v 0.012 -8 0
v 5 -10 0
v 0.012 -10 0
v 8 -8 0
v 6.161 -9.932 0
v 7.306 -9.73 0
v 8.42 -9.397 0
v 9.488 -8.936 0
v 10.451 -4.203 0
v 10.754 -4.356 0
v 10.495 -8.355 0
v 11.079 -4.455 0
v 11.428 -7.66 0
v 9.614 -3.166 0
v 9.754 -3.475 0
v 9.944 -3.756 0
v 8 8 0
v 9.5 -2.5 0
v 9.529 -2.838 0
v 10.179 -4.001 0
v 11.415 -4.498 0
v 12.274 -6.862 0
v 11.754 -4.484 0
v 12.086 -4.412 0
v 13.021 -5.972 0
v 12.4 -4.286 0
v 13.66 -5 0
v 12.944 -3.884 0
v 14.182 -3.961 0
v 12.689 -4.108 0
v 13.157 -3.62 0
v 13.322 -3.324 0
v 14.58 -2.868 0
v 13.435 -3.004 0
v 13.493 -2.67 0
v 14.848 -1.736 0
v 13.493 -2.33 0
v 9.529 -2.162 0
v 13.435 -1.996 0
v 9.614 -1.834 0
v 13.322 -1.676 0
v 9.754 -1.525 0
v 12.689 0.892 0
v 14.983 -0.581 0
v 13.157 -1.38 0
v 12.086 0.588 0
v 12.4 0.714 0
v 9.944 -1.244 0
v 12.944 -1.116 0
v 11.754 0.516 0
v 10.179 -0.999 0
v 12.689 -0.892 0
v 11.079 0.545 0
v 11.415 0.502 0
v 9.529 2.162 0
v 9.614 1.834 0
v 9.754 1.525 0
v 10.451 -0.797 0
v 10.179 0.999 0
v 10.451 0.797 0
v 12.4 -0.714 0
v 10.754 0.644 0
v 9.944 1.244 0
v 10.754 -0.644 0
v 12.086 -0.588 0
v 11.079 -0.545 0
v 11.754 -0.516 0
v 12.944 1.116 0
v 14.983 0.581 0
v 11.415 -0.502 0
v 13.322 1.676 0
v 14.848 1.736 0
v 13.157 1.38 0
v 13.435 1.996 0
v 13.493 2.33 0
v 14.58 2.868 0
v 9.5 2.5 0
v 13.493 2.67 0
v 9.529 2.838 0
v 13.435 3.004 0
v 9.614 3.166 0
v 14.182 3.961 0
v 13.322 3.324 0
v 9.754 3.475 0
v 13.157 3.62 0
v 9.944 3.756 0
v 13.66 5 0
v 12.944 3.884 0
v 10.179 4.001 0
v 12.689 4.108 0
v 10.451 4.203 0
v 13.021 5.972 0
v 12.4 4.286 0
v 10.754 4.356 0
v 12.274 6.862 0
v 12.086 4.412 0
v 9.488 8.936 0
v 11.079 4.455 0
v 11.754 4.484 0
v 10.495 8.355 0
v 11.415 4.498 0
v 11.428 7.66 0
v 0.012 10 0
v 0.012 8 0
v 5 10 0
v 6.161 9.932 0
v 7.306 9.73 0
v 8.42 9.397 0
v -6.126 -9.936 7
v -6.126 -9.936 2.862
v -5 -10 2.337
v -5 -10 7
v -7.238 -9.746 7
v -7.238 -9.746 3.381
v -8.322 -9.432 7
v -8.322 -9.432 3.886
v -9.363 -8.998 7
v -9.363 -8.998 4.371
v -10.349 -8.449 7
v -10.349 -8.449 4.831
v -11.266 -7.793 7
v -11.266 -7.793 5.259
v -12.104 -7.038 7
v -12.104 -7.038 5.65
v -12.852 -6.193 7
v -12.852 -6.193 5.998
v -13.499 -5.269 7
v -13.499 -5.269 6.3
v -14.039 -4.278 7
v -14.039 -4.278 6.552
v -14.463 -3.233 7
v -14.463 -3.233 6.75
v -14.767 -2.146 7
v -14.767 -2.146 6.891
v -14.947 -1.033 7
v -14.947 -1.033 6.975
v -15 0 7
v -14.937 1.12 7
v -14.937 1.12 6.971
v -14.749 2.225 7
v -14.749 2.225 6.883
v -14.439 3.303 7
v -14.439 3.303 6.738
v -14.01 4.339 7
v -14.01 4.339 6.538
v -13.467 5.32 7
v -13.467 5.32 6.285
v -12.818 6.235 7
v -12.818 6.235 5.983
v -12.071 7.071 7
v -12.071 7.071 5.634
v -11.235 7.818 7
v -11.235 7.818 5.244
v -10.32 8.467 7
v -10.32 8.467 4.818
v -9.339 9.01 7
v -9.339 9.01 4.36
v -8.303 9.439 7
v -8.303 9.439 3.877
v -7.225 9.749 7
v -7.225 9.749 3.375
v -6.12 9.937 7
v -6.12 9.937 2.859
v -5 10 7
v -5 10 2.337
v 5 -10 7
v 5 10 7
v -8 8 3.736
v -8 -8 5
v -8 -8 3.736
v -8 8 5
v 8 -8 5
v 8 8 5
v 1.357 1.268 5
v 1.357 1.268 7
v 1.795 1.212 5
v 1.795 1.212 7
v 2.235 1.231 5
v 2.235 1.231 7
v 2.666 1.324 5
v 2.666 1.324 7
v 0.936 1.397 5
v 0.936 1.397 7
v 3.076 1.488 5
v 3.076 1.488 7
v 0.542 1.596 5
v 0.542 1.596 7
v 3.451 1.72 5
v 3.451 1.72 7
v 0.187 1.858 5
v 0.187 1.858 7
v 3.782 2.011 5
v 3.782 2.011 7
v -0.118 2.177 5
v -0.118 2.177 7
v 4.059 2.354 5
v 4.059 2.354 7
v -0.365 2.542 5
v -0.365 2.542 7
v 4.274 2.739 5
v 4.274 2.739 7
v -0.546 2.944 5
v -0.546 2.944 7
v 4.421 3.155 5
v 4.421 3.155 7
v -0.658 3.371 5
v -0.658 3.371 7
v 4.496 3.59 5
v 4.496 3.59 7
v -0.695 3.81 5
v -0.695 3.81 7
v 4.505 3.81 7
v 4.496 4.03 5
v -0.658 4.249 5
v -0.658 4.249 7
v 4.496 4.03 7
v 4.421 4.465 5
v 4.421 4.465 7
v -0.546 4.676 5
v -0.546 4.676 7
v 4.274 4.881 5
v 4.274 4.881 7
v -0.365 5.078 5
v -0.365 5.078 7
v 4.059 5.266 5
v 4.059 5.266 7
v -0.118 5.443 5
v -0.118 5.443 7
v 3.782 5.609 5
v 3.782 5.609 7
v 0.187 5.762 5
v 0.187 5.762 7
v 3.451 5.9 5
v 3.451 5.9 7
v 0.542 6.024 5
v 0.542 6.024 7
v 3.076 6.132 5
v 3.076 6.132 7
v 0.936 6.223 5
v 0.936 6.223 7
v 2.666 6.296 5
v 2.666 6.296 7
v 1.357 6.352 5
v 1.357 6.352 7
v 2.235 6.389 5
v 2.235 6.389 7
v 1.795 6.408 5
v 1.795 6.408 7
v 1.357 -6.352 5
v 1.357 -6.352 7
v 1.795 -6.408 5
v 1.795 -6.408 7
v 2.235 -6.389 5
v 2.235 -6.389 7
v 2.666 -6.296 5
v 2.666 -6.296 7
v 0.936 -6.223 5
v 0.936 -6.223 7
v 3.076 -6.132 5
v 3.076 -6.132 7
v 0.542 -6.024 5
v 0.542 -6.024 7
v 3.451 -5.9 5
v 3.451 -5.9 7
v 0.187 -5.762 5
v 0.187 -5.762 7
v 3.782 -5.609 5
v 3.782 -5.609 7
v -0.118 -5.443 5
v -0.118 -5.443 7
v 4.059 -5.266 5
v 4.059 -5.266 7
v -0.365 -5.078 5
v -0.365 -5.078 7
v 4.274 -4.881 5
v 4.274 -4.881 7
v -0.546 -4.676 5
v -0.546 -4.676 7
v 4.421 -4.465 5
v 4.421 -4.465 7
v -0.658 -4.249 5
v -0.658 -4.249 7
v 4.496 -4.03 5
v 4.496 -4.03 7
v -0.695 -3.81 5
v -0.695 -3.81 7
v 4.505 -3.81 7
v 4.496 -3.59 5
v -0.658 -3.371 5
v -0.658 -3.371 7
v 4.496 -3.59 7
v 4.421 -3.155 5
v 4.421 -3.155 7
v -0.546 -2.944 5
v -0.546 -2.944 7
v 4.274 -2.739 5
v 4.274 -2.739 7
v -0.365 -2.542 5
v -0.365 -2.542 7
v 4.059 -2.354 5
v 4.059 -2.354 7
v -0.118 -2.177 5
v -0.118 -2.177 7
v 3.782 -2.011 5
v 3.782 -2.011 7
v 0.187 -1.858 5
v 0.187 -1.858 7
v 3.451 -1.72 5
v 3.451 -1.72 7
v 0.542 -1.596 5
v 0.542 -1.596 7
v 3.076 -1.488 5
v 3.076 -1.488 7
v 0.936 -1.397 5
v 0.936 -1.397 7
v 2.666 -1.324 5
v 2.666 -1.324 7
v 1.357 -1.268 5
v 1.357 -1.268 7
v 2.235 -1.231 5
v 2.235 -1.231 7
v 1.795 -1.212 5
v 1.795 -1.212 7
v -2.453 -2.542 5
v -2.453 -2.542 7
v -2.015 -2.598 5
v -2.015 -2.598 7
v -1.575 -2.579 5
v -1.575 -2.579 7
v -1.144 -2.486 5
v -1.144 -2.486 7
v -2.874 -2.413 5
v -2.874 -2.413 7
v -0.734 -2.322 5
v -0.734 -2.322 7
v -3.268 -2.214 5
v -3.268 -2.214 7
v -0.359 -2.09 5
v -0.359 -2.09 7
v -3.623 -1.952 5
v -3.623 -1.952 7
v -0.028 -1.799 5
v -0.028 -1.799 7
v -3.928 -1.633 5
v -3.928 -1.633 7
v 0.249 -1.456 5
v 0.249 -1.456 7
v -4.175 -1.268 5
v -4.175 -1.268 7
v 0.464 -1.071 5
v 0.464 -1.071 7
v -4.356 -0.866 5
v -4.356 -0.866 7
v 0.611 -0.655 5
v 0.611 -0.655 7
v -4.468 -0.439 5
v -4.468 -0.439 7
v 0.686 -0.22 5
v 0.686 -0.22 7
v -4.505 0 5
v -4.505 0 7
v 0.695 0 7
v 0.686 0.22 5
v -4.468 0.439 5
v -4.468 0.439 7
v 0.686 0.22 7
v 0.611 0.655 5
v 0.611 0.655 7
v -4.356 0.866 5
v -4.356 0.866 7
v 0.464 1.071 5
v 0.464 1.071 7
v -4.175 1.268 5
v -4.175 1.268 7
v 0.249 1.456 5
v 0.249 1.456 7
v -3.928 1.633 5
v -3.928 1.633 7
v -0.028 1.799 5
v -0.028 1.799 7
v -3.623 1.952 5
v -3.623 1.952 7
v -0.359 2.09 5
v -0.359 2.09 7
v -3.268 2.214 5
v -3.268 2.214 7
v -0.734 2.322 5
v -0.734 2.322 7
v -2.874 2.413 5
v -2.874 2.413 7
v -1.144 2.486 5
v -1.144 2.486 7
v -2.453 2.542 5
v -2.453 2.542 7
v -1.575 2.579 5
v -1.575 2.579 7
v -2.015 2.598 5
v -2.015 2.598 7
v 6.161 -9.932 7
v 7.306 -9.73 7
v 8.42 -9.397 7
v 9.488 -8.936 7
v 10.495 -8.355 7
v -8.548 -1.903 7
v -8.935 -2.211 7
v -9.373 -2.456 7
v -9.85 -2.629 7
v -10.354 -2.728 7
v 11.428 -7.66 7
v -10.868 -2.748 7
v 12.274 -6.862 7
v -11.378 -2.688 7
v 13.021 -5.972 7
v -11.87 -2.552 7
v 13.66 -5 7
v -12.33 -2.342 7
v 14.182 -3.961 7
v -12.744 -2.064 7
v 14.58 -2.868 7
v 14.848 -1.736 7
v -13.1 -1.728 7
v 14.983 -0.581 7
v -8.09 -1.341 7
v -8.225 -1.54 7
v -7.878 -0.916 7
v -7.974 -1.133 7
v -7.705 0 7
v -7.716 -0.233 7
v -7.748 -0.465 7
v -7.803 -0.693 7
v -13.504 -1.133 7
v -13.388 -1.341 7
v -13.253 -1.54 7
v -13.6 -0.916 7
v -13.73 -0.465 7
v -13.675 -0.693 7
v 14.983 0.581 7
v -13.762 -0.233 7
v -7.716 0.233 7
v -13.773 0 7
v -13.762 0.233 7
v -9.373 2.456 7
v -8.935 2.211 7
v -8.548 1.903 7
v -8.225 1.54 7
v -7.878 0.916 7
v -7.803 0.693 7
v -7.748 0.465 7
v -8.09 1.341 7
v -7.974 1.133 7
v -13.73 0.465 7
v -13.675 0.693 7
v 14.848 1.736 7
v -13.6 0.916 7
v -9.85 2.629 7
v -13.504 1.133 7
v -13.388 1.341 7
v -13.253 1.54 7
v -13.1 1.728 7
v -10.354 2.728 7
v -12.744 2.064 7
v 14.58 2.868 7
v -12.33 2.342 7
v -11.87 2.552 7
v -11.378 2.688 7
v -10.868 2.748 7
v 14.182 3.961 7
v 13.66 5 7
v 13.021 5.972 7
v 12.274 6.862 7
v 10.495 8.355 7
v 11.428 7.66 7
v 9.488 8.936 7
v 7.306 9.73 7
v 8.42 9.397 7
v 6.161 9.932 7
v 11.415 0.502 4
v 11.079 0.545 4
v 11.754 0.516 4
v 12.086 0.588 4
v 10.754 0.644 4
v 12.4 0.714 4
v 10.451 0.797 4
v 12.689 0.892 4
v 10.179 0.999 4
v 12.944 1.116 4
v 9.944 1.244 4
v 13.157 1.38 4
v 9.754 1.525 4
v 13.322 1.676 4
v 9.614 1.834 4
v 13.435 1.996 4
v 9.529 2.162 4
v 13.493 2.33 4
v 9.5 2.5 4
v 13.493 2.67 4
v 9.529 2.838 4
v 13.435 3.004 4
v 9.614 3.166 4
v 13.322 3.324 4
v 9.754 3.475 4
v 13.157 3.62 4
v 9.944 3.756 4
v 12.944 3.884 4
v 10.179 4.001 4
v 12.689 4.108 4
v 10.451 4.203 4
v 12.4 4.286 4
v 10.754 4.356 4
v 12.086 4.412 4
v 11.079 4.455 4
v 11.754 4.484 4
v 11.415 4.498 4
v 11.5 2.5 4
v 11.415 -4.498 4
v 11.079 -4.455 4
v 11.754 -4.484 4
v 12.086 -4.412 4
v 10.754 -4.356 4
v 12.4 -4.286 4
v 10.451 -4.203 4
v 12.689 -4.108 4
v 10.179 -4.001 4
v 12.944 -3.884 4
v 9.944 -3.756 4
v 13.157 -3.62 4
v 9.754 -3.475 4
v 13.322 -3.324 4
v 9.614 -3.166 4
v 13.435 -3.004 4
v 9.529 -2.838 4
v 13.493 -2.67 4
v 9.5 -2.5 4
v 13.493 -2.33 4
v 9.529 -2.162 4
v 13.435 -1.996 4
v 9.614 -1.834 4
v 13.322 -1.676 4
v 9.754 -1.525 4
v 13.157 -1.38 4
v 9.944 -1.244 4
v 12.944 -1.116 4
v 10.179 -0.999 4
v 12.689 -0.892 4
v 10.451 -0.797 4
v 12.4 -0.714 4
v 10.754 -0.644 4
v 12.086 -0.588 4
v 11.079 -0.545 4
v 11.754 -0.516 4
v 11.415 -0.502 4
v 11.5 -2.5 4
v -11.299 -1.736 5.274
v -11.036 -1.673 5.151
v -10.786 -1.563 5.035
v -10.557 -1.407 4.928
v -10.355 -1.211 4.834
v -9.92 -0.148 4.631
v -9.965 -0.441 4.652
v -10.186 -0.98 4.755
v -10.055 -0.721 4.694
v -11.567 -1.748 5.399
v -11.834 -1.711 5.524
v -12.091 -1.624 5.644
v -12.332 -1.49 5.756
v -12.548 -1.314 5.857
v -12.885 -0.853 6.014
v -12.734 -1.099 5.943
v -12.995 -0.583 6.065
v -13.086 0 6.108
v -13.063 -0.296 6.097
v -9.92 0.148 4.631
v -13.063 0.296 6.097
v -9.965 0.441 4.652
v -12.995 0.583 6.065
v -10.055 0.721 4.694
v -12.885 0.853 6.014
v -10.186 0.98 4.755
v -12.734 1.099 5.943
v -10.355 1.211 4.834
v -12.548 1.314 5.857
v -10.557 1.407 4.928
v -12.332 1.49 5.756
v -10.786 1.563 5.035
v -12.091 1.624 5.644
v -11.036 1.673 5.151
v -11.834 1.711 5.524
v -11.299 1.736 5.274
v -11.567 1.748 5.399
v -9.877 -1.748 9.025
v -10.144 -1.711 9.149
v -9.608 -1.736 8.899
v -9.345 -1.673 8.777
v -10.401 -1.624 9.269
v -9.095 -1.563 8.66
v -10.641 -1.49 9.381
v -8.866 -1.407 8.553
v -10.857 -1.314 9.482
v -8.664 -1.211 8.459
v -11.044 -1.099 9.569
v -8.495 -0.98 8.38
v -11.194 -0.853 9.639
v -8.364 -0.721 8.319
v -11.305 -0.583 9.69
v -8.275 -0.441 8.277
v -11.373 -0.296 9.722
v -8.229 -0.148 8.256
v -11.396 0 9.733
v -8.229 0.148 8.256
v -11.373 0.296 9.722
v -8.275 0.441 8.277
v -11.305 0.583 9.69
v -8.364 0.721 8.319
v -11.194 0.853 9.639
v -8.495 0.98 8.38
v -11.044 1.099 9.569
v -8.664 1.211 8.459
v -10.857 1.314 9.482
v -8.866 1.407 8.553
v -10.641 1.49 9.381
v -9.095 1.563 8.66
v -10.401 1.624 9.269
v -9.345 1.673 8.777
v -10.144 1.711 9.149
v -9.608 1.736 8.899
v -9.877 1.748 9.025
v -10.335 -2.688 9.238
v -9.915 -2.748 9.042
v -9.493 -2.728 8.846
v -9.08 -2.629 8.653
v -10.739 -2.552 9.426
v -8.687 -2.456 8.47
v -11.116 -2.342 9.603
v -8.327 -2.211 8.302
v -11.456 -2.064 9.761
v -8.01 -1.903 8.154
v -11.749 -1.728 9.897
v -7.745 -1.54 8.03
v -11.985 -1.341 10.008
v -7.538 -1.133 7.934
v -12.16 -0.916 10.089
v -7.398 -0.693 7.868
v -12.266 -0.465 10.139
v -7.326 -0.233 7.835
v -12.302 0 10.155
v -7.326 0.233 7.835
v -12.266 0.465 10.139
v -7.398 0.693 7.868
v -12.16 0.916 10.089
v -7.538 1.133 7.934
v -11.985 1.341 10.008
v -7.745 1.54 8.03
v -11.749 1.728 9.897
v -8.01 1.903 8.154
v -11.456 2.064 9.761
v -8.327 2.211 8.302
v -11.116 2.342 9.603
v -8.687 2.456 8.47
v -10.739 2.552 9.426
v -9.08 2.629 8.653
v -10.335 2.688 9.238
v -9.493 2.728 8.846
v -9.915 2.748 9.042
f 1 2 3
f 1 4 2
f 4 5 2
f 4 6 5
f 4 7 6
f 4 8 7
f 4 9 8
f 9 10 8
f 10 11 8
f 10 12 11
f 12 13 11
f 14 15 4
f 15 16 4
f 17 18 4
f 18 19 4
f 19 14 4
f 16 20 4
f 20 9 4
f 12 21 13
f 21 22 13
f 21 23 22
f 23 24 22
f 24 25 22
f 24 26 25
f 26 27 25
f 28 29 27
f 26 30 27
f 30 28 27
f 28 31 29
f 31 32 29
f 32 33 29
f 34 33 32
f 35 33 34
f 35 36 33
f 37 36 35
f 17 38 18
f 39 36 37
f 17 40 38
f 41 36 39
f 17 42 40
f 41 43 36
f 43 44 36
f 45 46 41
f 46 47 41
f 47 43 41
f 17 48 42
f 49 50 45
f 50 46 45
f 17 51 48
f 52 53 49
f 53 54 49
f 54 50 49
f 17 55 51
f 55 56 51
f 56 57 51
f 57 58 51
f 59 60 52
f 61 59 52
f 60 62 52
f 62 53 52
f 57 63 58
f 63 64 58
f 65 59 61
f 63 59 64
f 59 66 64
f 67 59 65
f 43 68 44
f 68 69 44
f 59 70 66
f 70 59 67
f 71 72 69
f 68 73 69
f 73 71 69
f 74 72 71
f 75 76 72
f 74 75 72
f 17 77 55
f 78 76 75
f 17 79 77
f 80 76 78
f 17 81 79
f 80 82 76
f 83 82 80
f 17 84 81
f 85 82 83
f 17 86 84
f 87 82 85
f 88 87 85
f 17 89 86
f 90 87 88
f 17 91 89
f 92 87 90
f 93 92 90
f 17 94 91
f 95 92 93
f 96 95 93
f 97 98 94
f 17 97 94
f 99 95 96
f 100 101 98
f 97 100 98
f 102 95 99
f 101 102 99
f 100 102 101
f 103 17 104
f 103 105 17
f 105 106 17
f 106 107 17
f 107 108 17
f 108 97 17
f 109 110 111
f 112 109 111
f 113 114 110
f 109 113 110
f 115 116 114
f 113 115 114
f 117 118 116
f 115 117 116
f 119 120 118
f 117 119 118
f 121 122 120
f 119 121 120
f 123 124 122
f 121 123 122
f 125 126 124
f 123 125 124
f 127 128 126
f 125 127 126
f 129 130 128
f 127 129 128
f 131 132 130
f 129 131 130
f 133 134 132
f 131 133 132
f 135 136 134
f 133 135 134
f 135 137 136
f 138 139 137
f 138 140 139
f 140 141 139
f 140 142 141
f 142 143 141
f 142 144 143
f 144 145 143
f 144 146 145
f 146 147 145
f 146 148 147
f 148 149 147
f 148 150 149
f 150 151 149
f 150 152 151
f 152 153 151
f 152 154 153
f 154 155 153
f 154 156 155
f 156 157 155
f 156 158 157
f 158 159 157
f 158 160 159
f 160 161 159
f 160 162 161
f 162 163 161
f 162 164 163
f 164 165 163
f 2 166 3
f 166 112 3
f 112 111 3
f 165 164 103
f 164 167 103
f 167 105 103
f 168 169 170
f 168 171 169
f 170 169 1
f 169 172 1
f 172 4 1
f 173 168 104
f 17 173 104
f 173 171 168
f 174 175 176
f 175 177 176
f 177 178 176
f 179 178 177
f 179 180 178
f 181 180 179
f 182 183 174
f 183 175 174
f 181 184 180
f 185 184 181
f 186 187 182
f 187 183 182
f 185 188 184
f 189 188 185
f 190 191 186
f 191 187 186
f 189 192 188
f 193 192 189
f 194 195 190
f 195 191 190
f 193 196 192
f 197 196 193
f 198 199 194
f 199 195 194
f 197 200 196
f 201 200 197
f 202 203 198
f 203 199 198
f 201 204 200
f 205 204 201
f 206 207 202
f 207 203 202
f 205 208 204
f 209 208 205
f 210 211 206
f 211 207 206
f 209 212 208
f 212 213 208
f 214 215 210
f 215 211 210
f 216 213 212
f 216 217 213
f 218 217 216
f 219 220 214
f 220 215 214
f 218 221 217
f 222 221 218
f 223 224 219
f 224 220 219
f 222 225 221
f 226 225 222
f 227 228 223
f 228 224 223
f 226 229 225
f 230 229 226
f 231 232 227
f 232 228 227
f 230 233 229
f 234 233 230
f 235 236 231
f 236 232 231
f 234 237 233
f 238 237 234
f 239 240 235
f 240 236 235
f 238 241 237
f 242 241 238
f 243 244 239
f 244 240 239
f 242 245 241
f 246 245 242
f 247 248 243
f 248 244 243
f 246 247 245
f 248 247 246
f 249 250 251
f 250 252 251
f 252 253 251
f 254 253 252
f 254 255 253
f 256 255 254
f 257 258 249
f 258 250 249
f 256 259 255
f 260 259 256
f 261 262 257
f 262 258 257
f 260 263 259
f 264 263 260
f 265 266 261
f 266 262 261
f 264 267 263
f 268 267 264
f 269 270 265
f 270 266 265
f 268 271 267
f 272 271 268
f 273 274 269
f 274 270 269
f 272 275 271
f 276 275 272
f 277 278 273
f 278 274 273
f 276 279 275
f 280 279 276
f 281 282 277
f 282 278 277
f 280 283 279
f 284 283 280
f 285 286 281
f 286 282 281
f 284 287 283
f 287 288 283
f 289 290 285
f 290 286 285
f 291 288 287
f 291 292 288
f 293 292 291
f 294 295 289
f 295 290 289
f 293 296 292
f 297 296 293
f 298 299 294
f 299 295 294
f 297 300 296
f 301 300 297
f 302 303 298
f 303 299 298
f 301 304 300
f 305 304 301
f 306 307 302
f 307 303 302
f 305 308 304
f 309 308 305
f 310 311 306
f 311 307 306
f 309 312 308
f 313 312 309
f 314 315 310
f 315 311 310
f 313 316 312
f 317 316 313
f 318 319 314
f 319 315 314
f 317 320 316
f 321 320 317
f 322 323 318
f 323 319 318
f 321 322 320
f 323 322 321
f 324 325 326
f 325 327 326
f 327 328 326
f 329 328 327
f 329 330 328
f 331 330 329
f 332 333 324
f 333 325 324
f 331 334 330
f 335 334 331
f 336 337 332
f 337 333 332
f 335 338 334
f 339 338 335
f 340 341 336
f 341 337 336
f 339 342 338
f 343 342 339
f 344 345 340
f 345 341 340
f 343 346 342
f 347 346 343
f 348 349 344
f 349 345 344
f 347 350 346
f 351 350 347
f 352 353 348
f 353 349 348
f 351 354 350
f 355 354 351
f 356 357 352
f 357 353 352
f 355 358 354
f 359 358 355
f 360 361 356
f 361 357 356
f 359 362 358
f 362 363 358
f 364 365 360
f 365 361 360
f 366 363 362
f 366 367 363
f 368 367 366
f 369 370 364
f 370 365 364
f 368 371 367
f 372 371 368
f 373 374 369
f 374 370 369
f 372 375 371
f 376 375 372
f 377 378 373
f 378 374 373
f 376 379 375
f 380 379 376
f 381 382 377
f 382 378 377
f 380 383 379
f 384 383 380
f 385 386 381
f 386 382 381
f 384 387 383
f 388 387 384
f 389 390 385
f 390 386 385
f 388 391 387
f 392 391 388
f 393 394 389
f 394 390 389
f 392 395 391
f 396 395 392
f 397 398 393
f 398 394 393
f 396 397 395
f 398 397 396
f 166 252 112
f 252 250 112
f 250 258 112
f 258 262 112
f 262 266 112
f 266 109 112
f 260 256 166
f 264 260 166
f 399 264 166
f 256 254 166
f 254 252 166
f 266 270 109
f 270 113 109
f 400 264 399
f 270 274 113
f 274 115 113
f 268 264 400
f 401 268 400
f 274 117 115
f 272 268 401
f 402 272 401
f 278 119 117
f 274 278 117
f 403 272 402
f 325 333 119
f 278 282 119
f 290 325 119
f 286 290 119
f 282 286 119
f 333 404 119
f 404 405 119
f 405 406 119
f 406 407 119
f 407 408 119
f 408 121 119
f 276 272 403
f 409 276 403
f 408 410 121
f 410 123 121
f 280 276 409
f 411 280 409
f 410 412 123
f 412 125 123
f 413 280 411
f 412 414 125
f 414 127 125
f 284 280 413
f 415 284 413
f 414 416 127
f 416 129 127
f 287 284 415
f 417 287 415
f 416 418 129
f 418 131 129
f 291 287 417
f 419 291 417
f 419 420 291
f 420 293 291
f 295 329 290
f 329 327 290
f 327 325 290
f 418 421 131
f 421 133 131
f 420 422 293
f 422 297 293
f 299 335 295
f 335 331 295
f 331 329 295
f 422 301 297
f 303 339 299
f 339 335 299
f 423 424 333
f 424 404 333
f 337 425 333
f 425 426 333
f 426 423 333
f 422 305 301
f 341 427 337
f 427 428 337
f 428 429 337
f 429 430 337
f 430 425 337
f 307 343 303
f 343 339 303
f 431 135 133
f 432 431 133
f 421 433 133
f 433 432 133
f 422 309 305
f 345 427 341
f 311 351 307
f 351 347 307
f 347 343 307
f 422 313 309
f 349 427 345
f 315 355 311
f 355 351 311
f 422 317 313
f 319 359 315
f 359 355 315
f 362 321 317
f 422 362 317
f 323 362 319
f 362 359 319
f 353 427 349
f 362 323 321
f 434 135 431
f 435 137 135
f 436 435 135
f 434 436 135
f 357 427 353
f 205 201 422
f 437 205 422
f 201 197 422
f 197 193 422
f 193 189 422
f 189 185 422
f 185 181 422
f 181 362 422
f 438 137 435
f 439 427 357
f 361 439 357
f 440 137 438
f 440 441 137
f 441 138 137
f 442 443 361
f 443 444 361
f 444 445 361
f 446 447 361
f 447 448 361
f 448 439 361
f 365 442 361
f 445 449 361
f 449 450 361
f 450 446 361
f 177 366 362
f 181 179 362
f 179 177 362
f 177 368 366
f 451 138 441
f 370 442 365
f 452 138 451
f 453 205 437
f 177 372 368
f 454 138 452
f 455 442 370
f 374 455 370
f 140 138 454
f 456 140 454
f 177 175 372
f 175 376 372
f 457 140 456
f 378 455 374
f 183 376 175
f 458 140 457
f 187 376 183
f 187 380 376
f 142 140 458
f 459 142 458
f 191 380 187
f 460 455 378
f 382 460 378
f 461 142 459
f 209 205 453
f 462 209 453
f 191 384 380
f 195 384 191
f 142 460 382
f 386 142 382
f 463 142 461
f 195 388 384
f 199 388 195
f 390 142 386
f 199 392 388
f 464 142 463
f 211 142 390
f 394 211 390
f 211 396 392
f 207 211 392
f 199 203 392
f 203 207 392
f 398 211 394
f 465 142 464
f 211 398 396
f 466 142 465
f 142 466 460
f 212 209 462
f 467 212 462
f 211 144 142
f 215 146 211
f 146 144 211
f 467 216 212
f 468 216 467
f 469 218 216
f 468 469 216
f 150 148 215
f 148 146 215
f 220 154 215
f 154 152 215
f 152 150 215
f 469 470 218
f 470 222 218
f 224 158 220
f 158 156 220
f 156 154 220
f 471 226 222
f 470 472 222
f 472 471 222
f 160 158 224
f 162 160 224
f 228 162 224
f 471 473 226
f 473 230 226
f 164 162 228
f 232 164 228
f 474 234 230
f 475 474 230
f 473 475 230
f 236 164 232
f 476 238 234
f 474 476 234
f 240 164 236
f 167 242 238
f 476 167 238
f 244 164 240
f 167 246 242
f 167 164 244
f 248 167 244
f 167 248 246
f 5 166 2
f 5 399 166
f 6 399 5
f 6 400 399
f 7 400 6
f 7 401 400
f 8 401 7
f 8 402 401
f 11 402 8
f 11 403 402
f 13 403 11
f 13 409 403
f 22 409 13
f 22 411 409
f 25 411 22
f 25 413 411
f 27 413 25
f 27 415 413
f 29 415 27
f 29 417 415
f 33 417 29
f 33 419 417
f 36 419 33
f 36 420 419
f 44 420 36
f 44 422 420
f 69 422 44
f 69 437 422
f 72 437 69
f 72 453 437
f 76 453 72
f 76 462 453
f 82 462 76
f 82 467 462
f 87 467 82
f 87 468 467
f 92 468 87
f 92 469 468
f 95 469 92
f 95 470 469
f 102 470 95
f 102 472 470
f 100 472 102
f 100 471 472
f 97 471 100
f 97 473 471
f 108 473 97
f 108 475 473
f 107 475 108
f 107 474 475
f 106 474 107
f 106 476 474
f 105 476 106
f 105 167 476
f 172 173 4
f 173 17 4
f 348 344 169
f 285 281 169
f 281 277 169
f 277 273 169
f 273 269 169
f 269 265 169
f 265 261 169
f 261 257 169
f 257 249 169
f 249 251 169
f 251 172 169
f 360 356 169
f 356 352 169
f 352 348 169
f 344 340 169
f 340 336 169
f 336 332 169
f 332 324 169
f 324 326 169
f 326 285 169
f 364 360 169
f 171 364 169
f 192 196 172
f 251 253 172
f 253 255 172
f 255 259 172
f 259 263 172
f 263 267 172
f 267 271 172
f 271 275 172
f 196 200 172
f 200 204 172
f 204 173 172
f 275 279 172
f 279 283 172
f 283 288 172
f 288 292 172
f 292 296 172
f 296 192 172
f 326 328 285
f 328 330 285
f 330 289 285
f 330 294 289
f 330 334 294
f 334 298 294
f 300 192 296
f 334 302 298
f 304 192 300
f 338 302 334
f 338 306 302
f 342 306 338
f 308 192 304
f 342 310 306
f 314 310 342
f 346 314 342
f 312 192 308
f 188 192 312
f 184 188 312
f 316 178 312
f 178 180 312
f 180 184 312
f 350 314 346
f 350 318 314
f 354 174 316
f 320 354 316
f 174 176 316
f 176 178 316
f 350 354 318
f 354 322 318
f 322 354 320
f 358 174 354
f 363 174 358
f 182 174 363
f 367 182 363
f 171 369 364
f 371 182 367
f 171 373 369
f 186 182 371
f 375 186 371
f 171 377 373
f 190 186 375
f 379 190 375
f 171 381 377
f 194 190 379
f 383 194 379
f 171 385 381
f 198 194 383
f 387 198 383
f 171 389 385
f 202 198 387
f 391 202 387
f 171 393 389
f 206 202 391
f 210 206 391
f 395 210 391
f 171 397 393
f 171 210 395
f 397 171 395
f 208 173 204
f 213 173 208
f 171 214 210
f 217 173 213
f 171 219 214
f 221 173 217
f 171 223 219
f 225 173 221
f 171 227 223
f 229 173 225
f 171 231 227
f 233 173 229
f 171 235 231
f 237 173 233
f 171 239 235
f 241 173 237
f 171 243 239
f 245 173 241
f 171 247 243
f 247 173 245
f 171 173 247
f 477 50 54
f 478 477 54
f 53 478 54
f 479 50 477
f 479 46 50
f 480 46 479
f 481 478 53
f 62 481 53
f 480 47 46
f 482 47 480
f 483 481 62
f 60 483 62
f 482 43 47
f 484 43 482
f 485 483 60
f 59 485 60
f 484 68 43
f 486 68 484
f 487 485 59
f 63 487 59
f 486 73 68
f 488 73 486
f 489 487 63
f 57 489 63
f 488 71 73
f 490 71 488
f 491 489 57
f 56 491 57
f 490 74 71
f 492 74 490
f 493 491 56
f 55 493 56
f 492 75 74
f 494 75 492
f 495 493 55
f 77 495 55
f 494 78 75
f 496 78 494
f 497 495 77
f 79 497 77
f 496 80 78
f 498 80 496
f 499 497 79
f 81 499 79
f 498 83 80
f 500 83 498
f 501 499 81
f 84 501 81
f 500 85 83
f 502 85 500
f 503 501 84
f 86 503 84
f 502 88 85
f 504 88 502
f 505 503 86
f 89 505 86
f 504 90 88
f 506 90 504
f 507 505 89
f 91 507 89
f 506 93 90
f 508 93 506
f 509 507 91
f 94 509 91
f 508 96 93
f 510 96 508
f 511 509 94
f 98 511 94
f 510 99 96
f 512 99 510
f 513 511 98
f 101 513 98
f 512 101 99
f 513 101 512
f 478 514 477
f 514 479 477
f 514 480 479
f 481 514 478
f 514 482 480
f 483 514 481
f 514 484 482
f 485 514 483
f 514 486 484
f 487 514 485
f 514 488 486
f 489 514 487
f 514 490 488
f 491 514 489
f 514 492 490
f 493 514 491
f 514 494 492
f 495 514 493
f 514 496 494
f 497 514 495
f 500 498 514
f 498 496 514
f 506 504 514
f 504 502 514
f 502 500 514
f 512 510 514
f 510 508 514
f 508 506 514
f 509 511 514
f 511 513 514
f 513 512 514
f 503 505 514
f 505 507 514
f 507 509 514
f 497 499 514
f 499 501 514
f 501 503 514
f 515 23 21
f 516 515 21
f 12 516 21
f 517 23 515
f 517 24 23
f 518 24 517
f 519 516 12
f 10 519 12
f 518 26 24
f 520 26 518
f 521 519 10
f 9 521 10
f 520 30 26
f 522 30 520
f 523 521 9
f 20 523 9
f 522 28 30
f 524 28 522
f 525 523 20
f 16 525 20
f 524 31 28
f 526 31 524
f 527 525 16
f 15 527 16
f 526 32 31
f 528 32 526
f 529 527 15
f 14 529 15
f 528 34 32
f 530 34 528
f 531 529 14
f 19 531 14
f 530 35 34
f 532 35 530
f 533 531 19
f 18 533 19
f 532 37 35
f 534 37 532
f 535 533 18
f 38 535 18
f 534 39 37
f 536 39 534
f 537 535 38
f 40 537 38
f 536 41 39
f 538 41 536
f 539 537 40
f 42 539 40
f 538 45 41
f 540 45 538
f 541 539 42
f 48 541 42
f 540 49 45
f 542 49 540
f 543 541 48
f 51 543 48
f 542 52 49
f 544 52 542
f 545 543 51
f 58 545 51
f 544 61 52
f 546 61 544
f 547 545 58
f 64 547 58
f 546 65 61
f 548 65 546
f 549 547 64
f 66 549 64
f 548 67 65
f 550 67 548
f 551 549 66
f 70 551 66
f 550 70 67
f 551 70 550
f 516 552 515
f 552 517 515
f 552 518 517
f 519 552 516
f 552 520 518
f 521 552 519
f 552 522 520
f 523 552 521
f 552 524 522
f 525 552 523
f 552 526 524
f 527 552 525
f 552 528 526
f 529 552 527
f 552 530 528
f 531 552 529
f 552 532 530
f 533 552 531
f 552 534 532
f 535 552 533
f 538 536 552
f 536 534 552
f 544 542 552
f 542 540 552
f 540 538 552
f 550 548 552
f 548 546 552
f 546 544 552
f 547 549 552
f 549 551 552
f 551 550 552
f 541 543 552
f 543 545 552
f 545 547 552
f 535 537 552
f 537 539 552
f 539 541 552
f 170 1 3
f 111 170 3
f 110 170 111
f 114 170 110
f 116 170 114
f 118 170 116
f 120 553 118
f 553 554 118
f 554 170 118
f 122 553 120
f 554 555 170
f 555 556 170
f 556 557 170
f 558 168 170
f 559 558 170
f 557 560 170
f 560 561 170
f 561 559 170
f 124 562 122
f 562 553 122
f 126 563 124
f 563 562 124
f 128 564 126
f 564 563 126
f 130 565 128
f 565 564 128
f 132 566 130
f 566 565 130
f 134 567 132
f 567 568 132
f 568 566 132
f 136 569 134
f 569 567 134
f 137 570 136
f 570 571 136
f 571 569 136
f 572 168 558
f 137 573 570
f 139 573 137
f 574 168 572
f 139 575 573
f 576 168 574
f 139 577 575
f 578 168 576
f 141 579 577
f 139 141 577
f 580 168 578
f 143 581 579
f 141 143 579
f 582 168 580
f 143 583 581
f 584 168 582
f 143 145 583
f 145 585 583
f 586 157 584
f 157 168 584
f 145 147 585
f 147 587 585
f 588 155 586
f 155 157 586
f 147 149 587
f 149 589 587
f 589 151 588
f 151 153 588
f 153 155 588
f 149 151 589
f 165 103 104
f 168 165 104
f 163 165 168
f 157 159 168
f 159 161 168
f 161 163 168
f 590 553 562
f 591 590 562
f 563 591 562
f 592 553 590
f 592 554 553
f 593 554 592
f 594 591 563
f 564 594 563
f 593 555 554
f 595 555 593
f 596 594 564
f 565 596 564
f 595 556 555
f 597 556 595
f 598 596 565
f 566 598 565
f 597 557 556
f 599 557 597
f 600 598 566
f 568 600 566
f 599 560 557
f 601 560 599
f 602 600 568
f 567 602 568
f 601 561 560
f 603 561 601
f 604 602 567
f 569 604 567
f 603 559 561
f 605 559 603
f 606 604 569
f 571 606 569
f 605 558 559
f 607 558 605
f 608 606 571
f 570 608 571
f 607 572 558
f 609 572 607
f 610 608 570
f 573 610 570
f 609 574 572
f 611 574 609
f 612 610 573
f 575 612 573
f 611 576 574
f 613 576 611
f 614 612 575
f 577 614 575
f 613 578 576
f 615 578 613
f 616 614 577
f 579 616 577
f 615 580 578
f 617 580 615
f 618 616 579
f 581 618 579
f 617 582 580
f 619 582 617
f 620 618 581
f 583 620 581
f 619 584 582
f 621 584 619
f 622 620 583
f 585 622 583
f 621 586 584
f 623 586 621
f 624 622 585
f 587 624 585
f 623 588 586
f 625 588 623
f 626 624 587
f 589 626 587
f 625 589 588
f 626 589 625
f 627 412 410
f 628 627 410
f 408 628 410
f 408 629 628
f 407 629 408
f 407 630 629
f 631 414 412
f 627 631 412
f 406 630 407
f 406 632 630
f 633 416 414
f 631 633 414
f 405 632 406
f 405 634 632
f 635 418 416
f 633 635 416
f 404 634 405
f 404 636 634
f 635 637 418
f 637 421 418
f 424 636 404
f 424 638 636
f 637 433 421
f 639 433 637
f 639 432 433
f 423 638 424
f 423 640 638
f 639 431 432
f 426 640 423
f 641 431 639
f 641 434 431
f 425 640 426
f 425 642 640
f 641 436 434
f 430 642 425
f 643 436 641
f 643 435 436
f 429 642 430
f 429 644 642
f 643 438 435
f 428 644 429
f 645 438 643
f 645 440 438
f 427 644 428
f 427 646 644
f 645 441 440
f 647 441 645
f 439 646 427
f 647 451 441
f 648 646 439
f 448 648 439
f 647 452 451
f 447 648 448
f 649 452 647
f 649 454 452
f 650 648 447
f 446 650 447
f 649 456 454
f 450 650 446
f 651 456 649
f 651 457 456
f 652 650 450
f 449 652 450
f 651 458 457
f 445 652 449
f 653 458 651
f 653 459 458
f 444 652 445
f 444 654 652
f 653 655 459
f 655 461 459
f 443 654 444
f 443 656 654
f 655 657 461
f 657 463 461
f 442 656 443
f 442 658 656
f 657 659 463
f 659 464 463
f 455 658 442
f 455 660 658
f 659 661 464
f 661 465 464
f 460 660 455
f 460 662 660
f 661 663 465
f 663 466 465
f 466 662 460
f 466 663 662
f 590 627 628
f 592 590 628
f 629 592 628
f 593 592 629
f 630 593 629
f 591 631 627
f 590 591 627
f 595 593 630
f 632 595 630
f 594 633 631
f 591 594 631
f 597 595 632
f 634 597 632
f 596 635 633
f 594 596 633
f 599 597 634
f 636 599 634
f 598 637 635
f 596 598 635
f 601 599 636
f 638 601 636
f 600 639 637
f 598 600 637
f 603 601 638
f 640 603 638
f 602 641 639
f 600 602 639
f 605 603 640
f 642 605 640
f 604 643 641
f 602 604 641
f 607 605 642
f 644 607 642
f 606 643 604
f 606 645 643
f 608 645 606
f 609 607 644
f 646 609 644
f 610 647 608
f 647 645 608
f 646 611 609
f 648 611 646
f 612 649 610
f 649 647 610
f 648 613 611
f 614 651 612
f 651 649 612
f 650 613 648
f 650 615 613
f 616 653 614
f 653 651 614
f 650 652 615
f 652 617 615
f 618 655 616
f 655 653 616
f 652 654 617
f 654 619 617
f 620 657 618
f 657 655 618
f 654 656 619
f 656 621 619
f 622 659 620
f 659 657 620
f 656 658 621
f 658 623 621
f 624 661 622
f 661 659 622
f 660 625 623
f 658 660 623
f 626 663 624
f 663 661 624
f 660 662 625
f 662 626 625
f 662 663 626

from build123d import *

# Parameters (mm, degrees)
SKETCH3_R           = 2.6
BOSS_EXTRUDE1_DEPTH = 7
SKETCH4_W           = 16
SKETCH4_H           = 16
CUT_EXTRUDE1_DEPTH  = 5
SKETCH5_R           = 2
CUT_EXTRUDE2_DEPTH  = 4
CUT_EXTRUDE3_DEPTH  = 26.961509971
SKETCH8_R           = 1.75
CUT_EXTRUDE4_DEPTH  = 20.33907899
SKETCH9_R           = 2.75
SKETCH9_R_2         = 1.75
BOSS_EXTRUDE3_DEPTH = 4


with BuildPart() as part:
    # Sketch3 → Boss-Extrude1 (new body)
    with BuildSketch(Plane.XY):
        with BuildLine():
            Line((-5, 10), (5, 10))
            ThreePointArc((5, 10), (15, 0), (5, -10))
            Line((5, -10), (-5, -10))
            ThreePointArc((-5, -10), (-15, 0), (-5, 10))
        make_face()
        with Locations((1.905, 3.81)):
            Circle(SKETCH3_R, mode=Mode.SUBTRACT)
        with Locations((1.905, -3.81)):
            Circle(SKETCH3_R, mode=Mode.SUBTRACT)
        with Locations((-1.905, 0)):
            Circle(SKETCH3_R, mode=Mode.SUBTRACT)
    extrude(amount=BOSS_EXTRUDE1_DEPTH)

    # Sketch4 → Cut-Extrude1 (cut)
    with BuildSketch(Plane(origin=(0, 0, 0), x_dir=(-1, 0, 0), z_dir=(0, 0, -1))):
        Rectangle(SKETCH4_W, SKETCH4_H)
    extrude(amount=-CUT_EXTRUDE1_DEPTH, mode=Mode.SUBTRACT)

    # Sketch5 → Cut-Extrude2 (cut)
    with BuildSketch(Plane(origin=(0, 0, 0), x_dir=(-1, 0, 0), z_dir=(0, 0, -1))):
        with Locations((-11.5, -2.5)):
            Circle(SKETCH5_R)
        with Locations((-11.5, 2.5)):
            Circle(SKETCH5_R)
    extrude(amount=-CUT_EXTRUDE2_DEPTH, mode=Mode.SUBTRACT)

    # Sketch6 → Cut-Extrude3 (cut, through all)
    with BuildSketch(Plane.XZ.offset(10)):
        Polygon((-5, 2.336923418), (-15, 7), (-15, 0), (-5, 0), align=None)
        Polygon((0.011548444, 0), (-5, 2.336923418), (-5, 0), align=None)
    extrude(amount=-CUT_EXTRUDE3_DEPTH, mode=Mode.SUBTRACT)

    # Sketch8 → Cut-Extrude4 (cut, through all)
    with BuildSketch(Plane(origin=(0.002062624, 0, 0.004423311), x_dir=(-0.9063077870366496, 0, 0.42261826174070033), z_dir=(-0.4226182617407003, 0, -0.9063077870366495))):
        with Locations((12.691121921, 0)):
            Circle(SKETCH8_R)
    extrude(amount=-CUT_EXTRUDE4_DEPTH, mode=Mode.SUBTRACT)

    # Sketch9 → Boss-Extrude3 (add)
    with BuildSketch(Plane(origin=(0.002062624, 0, 0.004423311), x_dir=(-0.9063077870366496, 0, 0.42261826174070033), z_dir=(-0.4226182617407003, 0, -0.9063077870366495))):
        with Locations((12.691121921, 0)):
            Circle(SKETCH9_R)
        with Locations((12.691121921, 0)):
            Circle(SKETCH9_R_2, mode=Mode.SUBTRACT)
    extrude(amount=-BOSS_EXTRUDE3_DEPTH)


solid = part.part
